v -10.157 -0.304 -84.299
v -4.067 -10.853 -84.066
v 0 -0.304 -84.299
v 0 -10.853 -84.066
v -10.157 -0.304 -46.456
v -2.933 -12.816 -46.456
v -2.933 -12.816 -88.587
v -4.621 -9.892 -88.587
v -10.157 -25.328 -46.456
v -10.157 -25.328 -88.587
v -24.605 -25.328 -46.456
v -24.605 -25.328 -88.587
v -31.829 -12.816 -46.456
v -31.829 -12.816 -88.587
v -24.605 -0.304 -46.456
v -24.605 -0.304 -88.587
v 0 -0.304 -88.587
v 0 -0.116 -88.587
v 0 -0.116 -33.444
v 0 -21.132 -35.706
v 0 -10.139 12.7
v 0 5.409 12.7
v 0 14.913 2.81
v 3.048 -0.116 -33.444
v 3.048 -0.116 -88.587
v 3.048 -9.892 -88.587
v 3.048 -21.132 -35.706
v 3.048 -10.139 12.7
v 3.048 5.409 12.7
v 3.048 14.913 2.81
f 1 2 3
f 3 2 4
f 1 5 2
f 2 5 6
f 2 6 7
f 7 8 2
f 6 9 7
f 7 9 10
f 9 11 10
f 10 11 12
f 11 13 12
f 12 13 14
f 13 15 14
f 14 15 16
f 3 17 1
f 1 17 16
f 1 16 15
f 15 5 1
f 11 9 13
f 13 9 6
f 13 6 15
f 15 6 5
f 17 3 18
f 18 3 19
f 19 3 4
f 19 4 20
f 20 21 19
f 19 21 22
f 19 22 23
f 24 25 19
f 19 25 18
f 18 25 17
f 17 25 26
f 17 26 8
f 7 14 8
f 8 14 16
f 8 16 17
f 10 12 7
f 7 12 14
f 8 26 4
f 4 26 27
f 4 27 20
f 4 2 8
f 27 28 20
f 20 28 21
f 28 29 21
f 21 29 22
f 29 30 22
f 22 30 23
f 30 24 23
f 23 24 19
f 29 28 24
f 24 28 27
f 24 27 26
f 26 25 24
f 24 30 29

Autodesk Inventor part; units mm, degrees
ref_plane "YZ Plane" through (0, 0, 0) normal (1, 0, 0) x (0, 1, 0)
sketch "Sketch1" plane through (0, 0, 0) normal (1, 0, 0) x (0, 1, 0)
  line L0 (-24.1055, -88.5873) -> (-15.6118, -88.5873) construction
  line L1 (-20.9777, -35.0252) -> (-12.3846, 2.8126) construction
  line L2 (-11.1876, -82.4913) -> (-20.9871, -36.3884) construction
  line L3 (-10.1392, 12.7) -> (5.4091, 12.7)
  line L4 (5.4091, 12.7) -> (14.913, 2.8103)
  line L5 (14.913, 2.8103) -> (-0.1161, -33.4438)
  line L6 (-0.1161, -33.4438) -> (-0.1161, -88.5873)
  line L7 (-0.1161, -88.5873) -> (-9.8919, -88.5873)
  line L8 (-9.8919, -88.5873) -> (-21.1322, -35.7057)
  line L9 (-21.1322, -35.7057) -> (-10.1392, 12.7)
  line L10 (-0.1161, -27.3073) -> (-0.1161, -82.4913) construction
  arc A0 (9.8983, -7.957) -> (-12.3846, 2.8126) centre (0, 0) ccw construction
  point P0 (0, 0)
ref_plane "Work Plane1" through (3.048, -55.7199, -88.0008) normal (1, 0, 0) x (0, 0.7407, 0.6718)
extrude "Extrusion1" add sketch "Sketch1" along normal up to surface (3.048 mm away)
ref_plane "Work Plane2" through (86.0885, -0.1204, -88.5873) normal (0, 0, -1) x (0, -1, 0)
sketch "Sketch3" plane through (86.0885, -0.1204, -88.5873) normal (0, 0, -1) x (0, -1, 0)
  circle A0 centre (12.6956, 103.4693) radius 9.525 projected
  line L0 (12.6956, 89.0216) -> (0.1835, 96.2455)
  line L1 (0.1835, 96.2455) -> (0.1835, 110.6932)
  line L2 (0.1835, 110.6932) -> (12.6956, 117.9171)
  line L3 (12.6956, 117.9171) -> (25.2077, 110.6932)
  line L4 (25.2077, 110.6932) -> (25.2077, 96.2455)
  line L5 (25.2077, 96.2455) -> (12.6956, 89.0216)
  point P0 (-0.1204, 86.0885)
ref_plane "Work Plane3" through (-20.1841, -15.6194, -46.4564) normal (0, 0, 1) x (0.8084, 0.5887, 0)
extrude "Extrusion2" add sketch "Sketch3" against normal up to surface (42.131 mm away) contours A0 | L0 L1 L2 L3 L4 L5
sketch "Sketch4" plane through (0, 0, 0) normal (-1, 0, 0) x (0, 0, 1)
  line L0 (-88.5873, -9.8919) -> (-88.5873, -0.1161) projected
  line L1 (-88.5873, -0.1161) -> (-33.4438, -0.1161) projected
  line L2 (-88.5873, -0.304) -> (-46.4564, -0.304) projected
  line L3 (-84.2988, -0.304) -> (-84.0662, -10.8529)
  line L4 (-35.7057, -21.1322) -> (-88.5873, -9.8919) projected
  point P0 (0, 0)
extrude "Extrusion3" add sketch "Sketch4" along normal blind 12.7
sketch "Sketch5" plane through (3.048, -0.1161, -88.5873) normal (0, 0, -1) x (-1, 0, 0)
  point P0 (3.048, 0.1161)
properties part number "ArmSolenoidBoundingBoc"
